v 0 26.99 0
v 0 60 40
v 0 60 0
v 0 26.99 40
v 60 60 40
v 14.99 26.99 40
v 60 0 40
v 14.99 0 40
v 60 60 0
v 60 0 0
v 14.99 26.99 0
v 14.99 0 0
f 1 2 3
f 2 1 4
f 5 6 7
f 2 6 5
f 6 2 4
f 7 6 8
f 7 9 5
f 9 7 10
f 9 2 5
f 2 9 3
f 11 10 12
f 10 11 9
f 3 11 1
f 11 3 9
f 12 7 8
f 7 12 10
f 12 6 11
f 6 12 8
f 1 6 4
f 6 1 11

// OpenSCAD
// file: ../corner-cutout-shelf-support.scad
module cornerCutoutShelfSupport(side = 60,
                               height = 40,
                               sideCutout = 15,
                               frontCutout = 21)
{
    difference()
    {
        color("brown")
        cube(size = [side, side, height]);

        cutout(sideCutout = sideCutout,
               frontCutout = frontCutout,
               height = height);
    }
}

module cutout(sideCutout ,
              frontCutout ,
              height )
{
    translate([-0.01, -0.01, -0.01])
    cube(size = [sideCutout, frontCutout, height + 0.02]);
}
// main file
use <../corner-cutout-shelf-support.scad>;

cornerCutoutShelfSupport(sideCutout = 15,
                               frontCutout = 27);
